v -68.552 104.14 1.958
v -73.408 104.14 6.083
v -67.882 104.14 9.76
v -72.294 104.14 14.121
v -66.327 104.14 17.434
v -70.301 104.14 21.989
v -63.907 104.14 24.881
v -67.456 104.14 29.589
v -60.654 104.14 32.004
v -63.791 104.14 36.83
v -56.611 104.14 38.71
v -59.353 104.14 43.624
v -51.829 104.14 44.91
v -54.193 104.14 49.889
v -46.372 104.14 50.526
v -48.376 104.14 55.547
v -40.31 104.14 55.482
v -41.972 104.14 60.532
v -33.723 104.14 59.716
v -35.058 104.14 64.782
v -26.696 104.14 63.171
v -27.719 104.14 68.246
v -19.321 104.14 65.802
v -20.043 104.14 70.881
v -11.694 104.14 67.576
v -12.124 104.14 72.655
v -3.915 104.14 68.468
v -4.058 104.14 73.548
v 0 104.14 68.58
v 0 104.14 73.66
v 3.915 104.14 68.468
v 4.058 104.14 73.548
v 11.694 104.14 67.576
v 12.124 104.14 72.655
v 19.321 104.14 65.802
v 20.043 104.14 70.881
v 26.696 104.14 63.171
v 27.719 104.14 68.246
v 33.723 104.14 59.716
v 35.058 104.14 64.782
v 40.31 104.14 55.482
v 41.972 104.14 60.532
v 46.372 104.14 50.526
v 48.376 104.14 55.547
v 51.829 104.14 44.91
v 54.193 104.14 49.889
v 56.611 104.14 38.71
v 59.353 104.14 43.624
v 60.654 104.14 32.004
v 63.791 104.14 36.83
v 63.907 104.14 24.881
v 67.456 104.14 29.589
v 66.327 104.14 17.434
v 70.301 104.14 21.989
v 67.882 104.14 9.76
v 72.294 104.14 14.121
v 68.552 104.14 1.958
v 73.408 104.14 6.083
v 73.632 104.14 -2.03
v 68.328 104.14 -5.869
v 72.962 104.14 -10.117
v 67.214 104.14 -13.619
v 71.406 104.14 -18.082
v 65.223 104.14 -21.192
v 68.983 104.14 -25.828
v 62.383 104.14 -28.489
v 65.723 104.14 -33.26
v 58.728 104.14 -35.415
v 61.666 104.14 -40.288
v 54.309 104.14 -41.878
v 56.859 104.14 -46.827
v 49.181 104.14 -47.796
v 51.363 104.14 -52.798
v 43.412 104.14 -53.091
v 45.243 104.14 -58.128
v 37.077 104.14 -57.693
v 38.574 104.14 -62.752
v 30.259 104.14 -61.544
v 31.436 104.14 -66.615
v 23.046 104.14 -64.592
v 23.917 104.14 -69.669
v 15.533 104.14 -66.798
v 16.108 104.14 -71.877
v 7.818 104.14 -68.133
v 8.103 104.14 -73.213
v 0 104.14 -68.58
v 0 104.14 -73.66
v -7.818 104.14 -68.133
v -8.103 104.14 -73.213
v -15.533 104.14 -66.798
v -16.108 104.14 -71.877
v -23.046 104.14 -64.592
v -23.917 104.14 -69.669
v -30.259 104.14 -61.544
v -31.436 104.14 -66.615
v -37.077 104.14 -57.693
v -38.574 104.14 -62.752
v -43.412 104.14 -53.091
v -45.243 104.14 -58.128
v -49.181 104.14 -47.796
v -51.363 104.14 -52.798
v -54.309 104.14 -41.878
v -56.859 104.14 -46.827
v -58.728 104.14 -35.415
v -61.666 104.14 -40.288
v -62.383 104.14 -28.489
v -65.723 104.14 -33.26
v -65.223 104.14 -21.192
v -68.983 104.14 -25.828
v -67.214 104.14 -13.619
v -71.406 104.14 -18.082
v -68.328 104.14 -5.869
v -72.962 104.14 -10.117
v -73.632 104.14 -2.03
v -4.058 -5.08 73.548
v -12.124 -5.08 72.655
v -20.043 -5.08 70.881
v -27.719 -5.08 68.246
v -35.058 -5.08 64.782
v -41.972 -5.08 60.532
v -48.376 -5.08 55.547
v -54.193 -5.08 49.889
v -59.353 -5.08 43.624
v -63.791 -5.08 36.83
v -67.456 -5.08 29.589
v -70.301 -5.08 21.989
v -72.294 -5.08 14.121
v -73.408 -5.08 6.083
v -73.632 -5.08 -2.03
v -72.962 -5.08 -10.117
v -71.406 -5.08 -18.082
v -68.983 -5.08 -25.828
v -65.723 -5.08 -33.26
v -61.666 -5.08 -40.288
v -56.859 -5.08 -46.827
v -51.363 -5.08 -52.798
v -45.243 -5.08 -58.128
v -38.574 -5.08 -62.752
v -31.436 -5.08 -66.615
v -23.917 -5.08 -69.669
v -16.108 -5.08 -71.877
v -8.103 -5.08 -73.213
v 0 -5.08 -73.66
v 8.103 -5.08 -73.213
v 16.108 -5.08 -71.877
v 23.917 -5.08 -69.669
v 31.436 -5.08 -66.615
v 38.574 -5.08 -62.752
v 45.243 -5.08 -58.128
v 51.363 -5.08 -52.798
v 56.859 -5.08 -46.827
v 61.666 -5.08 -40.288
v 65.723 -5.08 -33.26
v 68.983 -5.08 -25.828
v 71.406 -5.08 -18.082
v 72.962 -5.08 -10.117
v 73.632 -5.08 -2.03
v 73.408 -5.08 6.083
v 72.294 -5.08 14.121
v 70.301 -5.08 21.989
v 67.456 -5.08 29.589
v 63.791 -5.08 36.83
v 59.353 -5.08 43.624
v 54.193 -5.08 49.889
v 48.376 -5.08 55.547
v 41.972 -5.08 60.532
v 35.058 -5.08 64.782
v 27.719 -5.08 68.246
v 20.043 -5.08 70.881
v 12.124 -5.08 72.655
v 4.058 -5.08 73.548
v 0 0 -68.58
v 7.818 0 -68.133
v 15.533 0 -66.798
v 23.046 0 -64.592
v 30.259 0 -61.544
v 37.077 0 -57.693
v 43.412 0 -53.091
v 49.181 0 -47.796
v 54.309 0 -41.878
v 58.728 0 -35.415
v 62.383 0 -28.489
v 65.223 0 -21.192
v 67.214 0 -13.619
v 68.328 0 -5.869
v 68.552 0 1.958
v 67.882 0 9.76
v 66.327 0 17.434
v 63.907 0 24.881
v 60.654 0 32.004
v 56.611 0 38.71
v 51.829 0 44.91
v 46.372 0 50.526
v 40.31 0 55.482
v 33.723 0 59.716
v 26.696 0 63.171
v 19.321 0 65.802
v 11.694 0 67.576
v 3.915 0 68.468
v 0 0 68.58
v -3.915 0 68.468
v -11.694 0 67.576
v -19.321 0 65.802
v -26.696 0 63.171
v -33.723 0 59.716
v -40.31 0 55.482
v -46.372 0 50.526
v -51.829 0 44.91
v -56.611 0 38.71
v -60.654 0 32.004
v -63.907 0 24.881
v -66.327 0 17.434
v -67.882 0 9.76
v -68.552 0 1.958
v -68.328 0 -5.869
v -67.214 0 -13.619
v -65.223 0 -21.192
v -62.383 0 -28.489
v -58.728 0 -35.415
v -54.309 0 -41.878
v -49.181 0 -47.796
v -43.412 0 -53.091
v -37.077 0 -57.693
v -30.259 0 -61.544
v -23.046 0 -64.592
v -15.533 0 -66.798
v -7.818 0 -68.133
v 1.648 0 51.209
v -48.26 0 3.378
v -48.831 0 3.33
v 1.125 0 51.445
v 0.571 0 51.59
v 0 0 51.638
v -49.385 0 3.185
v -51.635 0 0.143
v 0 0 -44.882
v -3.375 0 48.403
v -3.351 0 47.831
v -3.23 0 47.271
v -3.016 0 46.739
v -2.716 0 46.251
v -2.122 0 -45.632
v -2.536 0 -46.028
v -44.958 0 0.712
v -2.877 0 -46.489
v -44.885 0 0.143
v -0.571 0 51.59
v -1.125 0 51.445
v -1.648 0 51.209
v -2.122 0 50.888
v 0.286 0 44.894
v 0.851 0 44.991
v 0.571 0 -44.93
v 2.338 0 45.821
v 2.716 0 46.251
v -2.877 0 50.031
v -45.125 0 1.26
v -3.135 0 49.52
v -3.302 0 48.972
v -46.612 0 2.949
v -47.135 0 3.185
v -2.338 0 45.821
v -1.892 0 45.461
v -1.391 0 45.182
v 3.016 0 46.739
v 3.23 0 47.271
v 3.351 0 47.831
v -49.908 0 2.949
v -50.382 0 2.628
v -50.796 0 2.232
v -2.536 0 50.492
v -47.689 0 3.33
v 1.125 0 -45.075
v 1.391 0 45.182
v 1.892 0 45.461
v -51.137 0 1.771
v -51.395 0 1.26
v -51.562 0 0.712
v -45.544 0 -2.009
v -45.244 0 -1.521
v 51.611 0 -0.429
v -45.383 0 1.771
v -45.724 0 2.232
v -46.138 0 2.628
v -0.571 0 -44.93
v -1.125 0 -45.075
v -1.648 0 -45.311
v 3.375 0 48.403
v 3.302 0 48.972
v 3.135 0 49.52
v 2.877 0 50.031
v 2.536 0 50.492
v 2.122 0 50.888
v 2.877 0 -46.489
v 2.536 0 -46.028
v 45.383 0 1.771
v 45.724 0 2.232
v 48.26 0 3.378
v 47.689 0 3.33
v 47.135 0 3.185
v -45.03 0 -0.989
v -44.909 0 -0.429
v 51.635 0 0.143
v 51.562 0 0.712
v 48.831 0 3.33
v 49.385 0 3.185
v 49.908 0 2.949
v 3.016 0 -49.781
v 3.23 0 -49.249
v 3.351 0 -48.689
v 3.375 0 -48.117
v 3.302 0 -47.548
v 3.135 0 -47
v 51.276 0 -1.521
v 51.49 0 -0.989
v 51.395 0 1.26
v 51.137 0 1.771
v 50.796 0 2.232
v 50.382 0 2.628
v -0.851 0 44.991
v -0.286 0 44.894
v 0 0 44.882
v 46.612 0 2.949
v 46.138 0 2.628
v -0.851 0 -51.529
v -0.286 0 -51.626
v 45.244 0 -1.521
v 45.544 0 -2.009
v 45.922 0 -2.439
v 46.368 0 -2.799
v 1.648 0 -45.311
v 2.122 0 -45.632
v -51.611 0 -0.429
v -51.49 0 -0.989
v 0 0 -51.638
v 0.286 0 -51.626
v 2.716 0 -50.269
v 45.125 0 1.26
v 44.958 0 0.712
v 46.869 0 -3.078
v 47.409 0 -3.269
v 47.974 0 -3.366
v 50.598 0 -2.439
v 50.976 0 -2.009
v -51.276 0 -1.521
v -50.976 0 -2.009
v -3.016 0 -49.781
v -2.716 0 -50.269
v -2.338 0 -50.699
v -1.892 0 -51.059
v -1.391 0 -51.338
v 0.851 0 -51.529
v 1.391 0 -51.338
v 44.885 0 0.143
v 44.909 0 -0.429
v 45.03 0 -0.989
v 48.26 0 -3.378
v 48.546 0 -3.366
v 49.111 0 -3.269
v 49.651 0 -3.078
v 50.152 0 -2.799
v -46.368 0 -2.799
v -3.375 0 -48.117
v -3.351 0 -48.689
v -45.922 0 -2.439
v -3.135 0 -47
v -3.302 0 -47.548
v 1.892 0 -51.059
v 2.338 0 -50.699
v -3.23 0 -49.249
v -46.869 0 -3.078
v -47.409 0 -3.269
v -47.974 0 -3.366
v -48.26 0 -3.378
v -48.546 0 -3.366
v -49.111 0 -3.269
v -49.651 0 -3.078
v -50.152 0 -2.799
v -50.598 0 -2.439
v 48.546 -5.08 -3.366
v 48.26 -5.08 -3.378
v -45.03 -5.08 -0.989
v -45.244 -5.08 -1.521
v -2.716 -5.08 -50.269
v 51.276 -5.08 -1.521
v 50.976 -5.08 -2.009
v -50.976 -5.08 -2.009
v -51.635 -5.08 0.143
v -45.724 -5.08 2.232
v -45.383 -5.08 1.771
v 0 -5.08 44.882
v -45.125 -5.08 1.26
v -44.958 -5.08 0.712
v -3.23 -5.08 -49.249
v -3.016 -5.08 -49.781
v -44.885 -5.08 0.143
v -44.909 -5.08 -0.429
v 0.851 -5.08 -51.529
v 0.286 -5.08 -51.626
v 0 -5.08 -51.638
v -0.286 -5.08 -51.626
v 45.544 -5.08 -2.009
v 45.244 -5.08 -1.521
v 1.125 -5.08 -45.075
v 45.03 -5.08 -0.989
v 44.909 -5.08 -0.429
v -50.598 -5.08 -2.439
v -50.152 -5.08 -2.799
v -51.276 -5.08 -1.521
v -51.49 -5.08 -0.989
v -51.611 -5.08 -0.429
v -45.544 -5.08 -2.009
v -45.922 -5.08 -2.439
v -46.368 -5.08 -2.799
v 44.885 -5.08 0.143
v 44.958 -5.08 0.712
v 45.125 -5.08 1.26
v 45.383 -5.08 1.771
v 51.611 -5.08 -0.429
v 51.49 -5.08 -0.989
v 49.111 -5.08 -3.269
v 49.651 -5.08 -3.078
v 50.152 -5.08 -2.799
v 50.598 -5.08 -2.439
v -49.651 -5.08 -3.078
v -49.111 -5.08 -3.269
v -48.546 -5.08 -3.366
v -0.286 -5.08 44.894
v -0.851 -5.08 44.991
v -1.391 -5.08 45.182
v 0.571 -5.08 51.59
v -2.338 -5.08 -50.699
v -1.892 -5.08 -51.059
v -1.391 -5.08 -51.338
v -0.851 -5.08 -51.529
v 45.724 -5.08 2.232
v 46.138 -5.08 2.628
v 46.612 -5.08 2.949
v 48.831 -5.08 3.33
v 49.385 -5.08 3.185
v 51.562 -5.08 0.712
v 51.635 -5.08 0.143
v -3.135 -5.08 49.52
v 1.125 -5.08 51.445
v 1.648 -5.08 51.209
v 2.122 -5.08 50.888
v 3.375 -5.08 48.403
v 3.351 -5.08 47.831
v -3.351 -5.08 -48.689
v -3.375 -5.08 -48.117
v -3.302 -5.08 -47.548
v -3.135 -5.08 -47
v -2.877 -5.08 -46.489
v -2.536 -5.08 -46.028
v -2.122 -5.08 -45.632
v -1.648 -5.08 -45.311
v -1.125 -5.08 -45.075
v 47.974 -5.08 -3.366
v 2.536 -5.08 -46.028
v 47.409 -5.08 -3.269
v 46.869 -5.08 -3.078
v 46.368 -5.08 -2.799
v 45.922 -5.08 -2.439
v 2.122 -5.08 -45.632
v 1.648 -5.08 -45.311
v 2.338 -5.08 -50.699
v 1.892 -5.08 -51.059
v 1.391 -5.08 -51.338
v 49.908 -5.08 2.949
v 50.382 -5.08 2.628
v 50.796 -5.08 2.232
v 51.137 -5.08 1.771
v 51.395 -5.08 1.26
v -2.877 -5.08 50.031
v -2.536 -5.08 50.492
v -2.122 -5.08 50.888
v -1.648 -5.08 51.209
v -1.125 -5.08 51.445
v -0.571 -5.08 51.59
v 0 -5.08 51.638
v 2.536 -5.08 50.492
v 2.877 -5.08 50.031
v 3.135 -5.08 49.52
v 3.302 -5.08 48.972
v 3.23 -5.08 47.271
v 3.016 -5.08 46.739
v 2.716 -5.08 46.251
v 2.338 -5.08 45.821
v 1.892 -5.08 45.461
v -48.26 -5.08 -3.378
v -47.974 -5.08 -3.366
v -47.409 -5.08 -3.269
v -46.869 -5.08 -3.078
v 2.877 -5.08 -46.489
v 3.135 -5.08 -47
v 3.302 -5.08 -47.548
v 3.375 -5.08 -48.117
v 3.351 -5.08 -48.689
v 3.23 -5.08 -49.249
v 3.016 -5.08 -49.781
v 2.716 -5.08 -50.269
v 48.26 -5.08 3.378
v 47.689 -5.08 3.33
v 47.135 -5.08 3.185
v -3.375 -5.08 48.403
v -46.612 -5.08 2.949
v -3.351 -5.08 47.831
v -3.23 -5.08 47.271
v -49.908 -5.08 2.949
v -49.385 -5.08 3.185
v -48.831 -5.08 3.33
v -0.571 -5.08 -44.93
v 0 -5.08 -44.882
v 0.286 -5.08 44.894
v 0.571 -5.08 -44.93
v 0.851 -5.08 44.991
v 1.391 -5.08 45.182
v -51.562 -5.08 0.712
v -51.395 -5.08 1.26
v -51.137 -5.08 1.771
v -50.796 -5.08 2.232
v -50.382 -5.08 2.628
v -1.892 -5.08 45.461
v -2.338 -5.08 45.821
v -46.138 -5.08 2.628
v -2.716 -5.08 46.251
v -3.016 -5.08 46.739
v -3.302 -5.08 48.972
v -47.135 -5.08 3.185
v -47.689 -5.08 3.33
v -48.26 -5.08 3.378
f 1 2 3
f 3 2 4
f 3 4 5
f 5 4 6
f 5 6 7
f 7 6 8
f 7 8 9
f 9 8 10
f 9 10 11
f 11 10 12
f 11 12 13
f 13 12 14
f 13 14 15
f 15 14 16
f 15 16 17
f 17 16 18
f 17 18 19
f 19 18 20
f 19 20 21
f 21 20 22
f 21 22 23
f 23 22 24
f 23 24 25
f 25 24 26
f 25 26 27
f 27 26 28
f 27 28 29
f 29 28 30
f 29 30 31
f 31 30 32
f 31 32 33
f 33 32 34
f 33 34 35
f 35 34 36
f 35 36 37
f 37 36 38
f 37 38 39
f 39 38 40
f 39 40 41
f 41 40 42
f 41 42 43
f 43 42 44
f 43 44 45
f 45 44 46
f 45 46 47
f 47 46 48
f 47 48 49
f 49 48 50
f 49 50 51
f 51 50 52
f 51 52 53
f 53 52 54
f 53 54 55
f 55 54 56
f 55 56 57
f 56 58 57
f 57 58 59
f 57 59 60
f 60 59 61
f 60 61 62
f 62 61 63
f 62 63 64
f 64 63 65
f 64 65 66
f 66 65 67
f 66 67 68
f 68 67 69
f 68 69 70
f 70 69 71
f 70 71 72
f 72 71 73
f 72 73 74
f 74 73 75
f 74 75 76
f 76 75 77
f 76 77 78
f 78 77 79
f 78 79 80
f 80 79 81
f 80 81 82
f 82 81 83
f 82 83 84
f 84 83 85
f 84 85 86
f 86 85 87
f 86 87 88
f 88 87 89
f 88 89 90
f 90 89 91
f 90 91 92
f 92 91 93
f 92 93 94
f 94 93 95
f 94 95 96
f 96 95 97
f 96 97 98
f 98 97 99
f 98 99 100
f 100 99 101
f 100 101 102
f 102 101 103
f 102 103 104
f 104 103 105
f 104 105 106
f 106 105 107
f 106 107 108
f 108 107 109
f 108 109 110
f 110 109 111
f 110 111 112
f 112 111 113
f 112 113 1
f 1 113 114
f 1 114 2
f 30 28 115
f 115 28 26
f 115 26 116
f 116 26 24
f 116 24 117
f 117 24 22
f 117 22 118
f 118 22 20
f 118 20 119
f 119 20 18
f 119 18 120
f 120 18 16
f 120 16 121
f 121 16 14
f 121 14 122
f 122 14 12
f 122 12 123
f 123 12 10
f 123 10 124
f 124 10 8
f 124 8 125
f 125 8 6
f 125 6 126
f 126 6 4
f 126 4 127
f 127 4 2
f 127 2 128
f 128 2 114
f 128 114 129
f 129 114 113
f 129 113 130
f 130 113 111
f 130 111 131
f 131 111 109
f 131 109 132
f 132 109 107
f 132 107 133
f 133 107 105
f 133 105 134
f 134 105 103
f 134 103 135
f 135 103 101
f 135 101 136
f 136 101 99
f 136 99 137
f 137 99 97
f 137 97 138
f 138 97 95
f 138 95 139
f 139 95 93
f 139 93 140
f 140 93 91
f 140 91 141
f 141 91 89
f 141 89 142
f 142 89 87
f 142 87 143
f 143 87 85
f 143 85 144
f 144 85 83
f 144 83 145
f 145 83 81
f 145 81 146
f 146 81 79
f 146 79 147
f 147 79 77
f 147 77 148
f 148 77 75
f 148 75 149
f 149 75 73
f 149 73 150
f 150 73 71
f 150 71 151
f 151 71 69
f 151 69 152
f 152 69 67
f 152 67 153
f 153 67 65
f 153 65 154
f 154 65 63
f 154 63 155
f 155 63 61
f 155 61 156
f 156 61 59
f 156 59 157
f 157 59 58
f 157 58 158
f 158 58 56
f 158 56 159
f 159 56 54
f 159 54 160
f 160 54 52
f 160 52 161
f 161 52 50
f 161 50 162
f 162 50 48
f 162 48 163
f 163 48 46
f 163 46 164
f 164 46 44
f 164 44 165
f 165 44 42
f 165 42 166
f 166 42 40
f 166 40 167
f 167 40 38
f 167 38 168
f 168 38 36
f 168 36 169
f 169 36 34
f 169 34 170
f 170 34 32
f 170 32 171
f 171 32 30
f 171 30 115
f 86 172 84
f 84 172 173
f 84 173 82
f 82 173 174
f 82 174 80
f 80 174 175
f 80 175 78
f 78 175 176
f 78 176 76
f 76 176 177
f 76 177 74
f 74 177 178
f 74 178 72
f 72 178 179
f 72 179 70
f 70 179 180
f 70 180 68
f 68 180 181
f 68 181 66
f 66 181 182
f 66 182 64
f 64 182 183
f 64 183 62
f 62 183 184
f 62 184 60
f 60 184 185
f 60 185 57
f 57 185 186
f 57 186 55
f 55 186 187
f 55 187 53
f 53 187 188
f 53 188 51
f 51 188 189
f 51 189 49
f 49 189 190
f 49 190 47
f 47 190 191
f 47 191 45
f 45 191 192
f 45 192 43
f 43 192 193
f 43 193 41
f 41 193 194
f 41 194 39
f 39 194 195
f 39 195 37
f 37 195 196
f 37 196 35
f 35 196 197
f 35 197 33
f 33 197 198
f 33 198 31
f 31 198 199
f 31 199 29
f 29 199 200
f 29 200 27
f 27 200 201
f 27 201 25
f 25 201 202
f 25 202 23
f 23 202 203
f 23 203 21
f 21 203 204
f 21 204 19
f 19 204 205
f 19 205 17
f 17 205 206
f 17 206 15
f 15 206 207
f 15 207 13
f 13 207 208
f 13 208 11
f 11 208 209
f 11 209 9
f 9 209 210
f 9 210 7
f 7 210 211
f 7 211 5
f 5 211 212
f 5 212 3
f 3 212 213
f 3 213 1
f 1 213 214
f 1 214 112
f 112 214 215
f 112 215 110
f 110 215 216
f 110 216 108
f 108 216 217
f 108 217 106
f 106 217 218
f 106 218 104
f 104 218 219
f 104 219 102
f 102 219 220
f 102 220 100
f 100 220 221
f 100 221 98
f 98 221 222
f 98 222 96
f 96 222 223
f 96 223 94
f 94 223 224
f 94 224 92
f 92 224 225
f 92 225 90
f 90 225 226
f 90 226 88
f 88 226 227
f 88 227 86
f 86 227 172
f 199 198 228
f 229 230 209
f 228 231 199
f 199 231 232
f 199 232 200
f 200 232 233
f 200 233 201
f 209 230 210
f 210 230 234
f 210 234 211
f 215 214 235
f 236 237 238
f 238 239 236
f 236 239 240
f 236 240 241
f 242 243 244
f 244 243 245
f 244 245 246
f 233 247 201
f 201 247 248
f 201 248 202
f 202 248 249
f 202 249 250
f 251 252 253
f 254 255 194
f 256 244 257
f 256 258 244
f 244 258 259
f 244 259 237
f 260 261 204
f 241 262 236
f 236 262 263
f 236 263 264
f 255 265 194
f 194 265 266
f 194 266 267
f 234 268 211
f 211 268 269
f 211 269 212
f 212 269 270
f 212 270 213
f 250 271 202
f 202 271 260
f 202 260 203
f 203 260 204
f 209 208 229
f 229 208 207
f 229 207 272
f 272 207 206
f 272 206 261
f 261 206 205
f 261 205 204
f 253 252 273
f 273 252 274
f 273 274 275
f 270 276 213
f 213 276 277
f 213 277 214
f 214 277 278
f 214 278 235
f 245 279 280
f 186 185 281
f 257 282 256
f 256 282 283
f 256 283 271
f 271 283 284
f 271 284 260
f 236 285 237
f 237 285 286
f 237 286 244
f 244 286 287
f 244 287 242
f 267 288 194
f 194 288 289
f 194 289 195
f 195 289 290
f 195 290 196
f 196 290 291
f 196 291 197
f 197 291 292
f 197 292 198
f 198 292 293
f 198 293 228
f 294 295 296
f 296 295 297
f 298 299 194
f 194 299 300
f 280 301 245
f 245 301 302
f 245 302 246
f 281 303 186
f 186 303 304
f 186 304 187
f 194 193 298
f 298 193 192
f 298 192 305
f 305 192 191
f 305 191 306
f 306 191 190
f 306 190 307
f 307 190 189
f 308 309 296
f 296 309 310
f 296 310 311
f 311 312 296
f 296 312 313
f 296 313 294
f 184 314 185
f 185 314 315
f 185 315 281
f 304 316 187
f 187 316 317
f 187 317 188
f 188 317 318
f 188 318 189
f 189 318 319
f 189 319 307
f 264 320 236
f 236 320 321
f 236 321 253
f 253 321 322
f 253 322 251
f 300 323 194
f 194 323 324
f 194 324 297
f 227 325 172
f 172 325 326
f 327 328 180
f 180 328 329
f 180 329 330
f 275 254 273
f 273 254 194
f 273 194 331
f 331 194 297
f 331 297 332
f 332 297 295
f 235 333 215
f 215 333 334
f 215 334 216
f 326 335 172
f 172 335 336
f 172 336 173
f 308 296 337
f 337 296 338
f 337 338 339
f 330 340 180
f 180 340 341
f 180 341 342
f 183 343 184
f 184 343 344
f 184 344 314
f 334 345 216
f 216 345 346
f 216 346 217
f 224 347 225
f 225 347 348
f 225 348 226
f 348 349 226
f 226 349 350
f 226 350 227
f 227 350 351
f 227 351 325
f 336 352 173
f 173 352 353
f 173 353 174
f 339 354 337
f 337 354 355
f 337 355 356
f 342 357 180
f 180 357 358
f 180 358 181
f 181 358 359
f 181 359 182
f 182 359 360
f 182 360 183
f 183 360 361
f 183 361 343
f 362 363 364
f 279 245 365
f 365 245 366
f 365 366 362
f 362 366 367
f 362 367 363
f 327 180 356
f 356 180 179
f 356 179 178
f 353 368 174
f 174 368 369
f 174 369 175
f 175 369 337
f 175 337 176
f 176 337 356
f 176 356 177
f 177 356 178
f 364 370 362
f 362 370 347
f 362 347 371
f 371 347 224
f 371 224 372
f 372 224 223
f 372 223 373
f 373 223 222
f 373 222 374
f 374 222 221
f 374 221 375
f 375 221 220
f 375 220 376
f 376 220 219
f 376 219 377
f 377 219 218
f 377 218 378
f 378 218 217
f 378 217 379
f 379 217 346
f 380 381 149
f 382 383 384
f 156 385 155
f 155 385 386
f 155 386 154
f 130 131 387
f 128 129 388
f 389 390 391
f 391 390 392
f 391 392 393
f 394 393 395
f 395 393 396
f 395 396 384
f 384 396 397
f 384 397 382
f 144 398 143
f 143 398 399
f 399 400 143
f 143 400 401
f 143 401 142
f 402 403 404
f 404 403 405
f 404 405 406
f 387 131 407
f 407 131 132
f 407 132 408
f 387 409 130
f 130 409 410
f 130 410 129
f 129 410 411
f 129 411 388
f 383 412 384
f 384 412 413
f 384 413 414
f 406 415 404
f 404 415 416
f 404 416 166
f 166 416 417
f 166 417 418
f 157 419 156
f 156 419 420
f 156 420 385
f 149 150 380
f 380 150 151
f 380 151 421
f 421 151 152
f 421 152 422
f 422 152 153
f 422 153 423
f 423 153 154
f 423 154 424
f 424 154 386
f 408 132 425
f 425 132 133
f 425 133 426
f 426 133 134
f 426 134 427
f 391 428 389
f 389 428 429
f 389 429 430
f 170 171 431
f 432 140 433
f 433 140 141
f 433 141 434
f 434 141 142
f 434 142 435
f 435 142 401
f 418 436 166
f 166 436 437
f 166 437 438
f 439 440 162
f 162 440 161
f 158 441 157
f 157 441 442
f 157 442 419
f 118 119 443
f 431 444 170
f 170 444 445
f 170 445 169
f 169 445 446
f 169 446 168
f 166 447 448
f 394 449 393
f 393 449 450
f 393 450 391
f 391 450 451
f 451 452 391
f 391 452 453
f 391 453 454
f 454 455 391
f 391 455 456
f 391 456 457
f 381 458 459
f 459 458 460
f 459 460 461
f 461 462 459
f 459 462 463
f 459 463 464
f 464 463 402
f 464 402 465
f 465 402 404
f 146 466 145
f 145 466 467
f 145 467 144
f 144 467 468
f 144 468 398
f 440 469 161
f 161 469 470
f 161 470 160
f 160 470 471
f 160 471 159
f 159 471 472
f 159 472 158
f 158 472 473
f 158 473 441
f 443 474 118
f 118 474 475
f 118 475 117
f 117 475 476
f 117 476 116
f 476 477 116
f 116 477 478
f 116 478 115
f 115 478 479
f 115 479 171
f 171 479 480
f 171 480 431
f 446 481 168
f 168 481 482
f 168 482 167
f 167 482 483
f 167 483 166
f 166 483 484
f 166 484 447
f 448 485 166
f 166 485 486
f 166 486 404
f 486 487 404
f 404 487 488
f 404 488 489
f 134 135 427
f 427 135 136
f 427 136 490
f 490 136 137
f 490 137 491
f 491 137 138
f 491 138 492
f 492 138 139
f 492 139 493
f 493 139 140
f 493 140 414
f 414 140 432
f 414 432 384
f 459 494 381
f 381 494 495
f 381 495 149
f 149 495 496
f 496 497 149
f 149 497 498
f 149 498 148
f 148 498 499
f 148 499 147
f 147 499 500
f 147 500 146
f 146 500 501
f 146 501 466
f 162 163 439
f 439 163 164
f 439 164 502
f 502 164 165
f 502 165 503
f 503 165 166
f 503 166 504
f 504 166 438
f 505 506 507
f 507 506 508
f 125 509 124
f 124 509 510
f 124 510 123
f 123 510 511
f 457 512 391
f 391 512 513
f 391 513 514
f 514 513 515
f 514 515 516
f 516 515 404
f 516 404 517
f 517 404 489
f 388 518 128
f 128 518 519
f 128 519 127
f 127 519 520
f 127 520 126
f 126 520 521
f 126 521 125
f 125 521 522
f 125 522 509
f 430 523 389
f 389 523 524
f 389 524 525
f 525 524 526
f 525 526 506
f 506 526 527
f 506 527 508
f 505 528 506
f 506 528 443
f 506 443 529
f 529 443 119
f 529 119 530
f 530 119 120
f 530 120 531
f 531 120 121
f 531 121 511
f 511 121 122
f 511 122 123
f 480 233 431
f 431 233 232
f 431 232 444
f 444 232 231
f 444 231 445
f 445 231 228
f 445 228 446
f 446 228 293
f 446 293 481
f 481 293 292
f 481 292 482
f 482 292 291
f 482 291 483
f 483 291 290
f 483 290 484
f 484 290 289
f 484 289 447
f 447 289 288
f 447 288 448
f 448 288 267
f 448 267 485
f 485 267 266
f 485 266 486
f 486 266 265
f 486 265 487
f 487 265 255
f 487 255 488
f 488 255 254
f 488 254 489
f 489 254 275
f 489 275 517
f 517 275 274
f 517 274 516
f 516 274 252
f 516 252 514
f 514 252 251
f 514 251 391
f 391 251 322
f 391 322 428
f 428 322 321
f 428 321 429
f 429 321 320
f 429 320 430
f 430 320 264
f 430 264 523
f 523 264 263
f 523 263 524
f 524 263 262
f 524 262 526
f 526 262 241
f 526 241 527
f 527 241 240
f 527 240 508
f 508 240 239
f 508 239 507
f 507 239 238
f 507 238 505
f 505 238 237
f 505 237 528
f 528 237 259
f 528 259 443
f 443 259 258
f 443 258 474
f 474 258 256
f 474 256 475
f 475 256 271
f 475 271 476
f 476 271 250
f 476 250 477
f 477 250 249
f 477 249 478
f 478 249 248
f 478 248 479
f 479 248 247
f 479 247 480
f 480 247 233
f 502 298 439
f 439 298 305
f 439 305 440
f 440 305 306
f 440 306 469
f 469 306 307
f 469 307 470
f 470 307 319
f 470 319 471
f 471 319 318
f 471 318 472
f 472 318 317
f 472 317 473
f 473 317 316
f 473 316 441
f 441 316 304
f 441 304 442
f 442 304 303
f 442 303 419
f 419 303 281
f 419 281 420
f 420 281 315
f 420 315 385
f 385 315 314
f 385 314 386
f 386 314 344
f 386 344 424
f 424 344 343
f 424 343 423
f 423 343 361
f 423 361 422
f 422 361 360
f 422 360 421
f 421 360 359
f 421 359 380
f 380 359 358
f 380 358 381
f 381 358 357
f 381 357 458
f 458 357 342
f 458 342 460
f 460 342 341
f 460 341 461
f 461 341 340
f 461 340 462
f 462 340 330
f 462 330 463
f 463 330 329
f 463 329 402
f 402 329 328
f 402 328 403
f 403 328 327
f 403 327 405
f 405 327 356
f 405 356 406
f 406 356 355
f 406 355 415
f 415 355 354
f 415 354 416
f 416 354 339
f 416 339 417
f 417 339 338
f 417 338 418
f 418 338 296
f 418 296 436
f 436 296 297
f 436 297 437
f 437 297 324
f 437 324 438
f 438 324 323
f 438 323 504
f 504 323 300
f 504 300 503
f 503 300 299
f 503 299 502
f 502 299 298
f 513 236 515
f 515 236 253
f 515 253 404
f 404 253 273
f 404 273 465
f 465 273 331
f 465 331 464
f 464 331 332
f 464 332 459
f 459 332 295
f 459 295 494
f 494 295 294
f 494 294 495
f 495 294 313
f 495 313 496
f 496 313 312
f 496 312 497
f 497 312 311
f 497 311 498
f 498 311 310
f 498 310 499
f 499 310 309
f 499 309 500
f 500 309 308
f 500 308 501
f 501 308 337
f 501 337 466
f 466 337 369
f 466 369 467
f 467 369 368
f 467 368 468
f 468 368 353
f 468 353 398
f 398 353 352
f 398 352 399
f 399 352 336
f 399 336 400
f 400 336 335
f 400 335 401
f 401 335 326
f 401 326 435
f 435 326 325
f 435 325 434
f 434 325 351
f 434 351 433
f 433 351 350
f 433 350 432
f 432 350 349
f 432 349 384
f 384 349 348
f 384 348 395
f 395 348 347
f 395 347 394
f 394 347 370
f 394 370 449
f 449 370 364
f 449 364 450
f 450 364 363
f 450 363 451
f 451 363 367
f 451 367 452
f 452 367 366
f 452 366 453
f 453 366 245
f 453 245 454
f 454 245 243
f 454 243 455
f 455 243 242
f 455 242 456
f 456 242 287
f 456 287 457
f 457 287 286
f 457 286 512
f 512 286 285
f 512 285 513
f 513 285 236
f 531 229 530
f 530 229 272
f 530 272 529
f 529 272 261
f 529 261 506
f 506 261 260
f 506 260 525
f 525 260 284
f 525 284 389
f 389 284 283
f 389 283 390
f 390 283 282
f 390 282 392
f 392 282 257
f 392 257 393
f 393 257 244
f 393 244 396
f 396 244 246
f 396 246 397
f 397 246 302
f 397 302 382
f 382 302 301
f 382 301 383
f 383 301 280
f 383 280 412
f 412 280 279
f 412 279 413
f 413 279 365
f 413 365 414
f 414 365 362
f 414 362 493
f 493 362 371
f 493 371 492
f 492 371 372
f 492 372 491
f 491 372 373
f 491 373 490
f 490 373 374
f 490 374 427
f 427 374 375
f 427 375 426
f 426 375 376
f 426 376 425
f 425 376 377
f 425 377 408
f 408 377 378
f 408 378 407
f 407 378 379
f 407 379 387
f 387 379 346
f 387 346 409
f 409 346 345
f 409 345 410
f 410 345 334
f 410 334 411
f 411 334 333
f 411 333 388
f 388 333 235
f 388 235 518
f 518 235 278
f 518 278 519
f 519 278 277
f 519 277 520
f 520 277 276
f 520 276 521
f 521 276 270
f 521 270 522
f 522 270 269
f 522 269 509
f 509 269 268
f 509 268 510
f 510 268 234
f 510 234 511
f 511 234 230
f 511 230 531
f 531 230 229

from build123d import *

# Parameters (mm, degrees)
SKETCH1_R           = 73.66
SKETCH1_R_2         = 68.58
BOSS_EXTRUDE1_DEPTH = 104.14
BOSS_EXTRUDE2_START = 5.08
SKETCH2_R           = 73.66
SKETCH2_R_2         = 3.3782
BOSS_EXTRUDE2_DEPTH = 5.08


with BuildPart() as part:
    # Sketch1 → Boss-Extrude1 (new body)
    with BuildSketch(Plane(origin=(0, 0, 0), x_dir=(1, 0, 0), z_dir=(0, 1, 0))):
        with Locations(Location((0, 0, 0), (0, 0, 270))):
            Circle(SKETCH1_R)
        with Locations(Location((0, 0, 0), (0, 0, 270))):
            Circle(SKETCH1_R_2, mode=Mode.SUBTRACT)
    extrude(amount=BOSS_EXTRUDE1_DEPTH)

    # Sketch2 → Boss-Extrude2 (add)
    with BuildSketch(Plane.XZ.offset(BOSS_EXTRUDE2_START)):
        with Locations(Location((0, 0, 0), (0, 0, 270))):
            Circle(SKETCH2_R)
        with Locations(Location((0, 48.26, 0), (0, 0, 270))):
            Circle(SKETCH2_R_2, mode=Mode.SUBTRACT)
        with Locations(Location((48.26, 0, 0), (0, 0, 270))):
            Circle(SKETCH2_R_2, mode=Mode.SUBTRACT)
        with Locations(Location((0, -48.26, 0), (0, 0, 270))):
            Circle(SKETCH2_R_2, mode=Mode.SUBTRACT)
        with Locations(Location((-48.26, 0, 0), (0, 0, 270))):
            Circle(SKETCH2_R_2, mode=Mode.SUBTRACT)
    extrude(amount=-BOSS_EXTRUDE2_DEPTH)


solid = part.part
